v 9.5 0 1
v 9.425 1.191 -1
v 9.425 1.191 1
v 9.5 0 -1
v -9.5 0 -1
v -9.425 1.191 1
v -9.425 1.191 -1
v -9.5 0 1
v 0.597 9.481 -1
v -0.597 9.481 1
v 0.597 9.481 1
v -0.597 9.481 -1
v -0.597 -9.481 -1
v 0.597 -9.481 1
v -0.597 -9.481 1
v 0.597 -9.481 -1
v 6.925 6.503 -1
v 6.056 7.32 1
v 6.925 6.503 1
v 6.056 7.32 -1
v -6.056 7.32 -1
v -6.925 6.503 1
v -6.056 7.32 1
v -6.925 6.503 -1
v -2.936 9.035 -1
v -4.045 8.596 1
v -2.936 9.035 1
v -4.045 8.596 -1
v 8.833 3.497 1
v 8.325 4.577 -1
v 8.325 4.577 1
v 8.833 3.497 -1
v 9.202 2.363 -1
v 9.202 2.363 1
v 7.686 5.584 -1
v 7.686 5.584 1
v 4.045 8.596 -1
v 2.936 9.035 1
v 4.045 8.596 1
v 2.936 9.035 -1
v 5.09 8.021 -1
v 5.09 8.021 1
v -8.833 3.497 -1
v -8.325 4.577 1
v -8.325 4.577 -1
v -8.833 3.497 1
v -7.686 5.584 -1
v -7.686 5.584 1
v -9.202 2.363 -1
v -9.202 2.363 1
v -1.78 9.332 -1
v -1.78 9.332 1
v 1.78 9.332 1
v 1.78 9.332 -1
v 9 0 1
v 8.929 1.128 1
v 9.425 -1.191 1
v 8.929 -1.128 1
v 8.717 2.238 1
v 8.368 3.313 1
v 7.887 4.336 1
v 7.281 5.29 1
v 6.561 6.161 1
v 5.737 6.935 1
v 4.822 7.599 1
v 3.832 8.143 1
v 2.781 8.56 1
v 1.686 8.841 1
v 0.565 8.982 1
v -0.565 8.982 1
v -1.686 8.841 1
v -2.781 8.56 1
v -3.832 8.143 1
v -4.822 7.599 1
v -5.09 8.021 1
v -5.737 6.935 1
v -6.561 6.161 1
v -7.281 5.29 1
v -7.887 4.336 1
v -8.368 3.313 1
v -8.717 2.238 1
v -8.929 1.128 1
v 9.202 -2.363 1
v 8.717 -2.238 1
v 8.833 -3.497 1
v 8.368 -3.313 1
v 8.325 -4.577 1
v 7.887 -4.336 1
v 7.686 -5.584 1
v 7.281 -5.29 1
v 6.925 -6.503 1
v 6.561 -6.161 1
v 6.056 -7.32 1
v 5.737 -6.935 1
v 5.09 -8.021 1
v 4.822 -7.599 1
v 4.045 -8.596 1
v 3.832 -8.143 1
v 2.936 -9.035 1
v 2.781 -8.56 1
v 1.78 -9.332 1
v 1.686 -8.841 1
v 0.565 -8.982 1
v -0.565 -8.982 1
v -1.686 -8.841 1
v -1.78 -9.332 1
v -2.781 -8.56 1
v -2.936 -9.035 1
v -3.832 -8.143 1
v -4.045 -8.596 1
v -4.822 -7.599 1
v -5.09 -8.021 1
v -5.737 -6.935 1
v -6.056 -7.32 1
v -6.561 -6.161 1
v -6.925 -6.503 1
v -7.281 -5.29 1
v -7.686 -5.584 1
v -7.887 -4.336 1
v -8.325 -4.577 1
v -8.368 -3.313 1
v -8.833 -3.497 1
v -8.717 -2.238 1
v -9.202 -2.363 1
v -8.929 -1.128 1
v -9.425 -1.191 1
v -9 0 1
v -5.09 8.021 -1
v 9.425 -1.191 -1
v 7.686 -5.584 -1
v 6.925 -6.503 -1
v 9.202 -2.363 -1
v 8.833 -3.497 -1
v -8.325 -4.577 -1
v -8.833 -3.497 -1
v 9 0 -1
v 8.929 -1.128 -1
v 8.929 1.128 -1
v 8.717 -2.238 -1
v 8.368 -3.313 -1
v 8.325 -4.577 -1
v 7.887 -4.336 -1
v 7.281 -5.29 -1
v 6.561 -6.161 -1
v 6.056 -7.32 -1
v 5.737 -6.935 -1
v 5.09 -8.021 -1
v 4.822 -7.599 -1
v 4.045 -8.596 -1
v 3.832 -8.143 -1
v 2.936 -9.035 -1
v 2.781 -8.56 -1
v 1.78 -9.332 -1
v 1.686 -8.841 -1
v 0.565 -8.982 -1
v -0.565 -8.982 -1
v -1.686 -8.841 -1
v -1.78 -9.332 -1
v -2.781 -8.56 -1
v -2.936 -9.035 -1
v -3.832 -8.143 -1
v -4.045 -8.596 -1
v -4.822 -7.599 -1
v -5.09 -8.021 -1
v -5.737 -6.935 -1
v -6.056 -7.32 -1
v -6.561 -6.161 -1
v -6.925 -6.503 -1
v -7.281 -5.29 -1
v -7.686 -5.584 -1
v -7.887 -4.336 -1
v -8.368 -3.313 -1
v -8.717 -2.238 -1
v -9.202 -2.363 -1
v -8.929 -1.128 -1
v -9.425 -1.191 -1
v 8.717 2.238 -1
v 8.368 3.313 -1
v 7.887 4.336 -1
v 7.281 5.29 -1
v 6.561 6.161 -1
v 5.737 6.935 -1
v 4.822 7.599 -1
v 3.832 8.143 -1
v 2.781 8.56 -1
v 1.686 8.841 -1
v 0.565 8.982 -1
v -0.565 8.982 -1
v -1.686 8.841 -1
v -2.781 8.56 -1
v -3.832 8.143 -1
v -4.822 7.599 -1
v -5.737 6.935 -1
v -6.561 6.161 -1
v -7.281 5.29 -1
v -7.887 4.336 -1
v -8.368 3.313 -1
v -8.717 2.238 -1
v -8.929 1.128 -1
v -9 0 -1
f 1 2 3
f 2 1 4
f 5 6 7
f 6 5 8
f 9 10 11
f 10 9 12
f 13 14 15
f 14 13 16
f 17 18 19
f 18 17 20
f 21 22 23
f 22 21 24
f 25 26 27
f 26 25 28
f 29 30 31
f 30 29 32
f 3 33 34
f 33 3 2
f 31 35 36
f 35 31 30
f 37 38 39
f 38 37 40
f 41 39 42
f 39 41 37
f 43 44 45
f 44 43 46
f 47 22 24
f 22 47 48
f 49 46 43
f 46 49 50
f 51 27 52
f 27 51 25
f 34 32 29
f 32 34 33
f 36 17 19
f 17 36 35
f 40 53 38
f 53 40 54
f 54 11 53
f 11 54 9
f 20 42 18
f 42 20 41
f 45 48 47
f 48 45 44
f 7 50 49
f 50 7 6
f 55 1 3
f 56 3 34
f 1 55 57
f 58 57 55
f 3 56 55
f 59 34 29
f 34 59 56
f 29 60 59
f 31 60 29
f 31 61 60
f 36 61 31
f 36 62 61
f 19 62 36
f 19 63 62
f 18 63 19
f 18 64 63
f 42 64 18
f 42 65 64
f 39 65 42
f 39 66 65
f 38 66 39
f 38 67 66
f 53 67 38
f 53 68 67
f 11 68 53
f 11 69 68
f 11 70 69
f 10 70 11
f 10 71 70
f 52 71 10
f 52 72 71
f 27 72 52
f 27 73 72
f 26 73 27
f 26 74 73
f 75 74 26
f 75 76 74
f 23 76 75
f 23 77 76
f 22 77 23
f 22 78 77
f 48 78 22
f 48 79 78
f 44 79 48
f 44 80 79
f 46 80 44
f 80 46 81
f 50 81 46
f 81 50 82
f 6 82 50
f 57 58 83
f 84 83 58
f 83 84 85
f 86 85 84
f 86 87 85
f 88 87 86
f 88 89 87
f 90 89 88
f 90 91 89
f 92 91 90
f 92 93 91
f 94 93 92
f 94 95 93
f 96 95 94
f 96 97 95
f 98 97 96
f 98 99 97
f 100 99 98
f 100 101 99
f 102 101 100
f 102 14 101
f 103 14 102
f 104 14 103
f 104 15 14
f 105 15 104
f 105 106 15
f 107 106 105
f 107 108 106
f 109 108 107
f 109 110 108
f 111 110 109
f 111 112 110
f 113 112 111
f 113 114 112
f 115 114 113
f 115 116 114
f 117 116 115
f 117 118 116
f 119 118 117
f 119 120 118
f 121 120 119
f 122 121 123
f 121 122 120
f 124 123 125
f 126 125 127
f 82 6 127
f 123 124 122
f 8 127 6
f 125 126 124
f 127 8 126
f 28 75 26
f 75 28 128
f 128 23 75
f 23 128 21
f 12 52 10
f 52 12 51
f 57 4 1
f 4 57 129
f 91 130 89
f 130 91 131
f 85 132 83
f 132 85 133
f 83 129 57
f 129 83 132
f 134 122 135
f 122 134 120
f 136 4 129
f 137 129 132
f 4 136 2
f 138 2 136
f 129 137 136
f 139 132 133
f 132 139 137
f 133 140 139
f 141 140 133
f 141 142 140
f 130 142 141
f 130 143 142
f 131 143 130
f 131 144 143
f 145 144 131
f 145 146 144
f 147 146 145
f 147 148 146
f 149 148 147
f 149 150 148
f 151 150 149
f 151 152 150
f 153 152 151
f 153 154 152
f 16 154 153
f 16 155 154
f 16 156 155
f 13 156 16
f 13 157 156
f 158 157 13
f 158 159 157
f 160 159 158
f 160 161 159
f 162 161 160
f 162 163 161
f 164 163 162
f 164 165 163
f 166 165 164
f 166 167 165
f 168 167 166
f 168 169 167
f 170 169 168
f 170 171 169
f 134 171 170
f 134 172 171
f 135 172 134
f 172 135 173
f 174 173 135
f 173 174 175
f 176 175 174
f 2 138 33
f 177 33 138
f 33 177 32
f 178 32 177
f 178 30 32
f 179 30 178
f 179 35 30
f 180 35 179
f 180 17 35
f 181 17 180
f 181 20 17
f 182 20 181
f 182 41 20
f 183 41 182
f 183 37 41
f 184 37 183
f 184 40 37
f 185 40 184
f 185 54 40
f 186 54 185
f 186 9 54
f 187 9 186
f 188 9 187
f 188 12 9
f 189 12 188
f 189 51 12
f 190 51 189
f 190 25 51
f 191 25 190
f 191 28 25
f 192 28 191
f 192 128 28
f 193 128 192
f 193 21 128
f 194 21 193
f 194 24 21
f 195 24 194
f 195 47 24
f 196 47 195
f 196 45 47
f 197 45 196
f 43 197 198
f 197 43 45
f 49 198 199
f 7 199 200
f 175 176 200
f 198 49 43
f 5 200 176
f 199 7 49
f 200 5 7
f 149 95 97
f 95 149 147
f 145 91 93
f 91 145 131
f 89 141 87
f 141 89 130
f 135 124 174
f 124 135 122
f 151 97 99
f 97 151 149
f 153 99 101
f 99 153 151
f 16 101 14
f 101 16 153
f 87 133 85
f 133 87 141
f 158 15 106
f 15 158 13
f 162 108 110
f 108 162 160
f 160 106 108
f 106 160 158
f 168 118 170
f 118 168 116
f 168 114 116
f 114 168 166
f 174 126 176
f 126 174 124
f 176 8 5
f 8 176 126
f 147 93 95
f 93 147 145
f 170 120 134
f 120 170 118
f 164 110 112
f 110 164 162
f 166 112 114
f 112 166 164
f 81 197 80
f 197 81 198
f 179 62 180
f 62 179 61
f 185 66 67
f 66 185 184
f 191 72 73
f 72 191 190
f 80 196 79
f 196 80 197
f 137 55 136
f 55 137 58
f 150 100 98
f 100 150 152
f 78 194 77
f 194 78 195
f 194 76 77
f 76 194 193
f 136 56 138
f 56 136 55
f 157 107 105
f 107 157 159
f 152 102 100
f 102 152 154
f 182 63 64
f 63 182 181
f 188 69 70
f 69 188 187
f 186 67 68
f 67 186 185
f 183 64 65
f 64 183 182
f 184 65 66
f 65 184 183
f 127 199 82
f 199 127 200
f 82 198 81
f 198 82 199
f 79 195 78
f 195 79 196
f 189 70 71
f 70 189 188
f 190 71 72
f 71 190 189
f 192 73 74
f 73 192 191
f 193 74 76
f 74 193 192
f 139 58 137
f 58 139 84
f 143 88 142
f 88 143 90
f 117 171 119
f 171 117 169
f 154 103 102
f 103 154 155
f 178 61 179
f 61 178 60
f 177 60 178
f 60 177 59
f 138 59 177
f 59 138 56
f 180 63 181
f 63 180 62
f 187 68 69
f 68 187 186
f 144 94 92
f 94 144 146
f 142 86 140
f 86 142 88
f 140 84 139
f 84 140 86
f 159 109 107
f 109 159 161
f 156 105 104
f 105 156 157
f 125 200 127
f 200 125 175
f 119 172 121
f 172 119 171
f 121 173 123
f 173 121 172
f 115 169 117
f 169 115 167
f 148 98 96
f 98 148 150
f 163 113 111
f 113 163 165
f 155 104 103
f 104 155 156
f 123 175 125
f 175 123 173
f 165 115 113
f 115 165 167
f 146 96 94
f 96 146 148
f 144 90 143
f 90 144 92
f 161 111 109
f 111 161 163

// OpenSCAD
$fn = 50;


difference() {
	union() {
		translate(v = [0, 0, -1.0000000000]) {
			cylinder(h = 2, r = 9.5000000000);
		}
	}
	union() {
		translate(v = [0, 0, -100.0000000000]) {
			cylinder(h = 200, r = 9);
		}
	}
}
